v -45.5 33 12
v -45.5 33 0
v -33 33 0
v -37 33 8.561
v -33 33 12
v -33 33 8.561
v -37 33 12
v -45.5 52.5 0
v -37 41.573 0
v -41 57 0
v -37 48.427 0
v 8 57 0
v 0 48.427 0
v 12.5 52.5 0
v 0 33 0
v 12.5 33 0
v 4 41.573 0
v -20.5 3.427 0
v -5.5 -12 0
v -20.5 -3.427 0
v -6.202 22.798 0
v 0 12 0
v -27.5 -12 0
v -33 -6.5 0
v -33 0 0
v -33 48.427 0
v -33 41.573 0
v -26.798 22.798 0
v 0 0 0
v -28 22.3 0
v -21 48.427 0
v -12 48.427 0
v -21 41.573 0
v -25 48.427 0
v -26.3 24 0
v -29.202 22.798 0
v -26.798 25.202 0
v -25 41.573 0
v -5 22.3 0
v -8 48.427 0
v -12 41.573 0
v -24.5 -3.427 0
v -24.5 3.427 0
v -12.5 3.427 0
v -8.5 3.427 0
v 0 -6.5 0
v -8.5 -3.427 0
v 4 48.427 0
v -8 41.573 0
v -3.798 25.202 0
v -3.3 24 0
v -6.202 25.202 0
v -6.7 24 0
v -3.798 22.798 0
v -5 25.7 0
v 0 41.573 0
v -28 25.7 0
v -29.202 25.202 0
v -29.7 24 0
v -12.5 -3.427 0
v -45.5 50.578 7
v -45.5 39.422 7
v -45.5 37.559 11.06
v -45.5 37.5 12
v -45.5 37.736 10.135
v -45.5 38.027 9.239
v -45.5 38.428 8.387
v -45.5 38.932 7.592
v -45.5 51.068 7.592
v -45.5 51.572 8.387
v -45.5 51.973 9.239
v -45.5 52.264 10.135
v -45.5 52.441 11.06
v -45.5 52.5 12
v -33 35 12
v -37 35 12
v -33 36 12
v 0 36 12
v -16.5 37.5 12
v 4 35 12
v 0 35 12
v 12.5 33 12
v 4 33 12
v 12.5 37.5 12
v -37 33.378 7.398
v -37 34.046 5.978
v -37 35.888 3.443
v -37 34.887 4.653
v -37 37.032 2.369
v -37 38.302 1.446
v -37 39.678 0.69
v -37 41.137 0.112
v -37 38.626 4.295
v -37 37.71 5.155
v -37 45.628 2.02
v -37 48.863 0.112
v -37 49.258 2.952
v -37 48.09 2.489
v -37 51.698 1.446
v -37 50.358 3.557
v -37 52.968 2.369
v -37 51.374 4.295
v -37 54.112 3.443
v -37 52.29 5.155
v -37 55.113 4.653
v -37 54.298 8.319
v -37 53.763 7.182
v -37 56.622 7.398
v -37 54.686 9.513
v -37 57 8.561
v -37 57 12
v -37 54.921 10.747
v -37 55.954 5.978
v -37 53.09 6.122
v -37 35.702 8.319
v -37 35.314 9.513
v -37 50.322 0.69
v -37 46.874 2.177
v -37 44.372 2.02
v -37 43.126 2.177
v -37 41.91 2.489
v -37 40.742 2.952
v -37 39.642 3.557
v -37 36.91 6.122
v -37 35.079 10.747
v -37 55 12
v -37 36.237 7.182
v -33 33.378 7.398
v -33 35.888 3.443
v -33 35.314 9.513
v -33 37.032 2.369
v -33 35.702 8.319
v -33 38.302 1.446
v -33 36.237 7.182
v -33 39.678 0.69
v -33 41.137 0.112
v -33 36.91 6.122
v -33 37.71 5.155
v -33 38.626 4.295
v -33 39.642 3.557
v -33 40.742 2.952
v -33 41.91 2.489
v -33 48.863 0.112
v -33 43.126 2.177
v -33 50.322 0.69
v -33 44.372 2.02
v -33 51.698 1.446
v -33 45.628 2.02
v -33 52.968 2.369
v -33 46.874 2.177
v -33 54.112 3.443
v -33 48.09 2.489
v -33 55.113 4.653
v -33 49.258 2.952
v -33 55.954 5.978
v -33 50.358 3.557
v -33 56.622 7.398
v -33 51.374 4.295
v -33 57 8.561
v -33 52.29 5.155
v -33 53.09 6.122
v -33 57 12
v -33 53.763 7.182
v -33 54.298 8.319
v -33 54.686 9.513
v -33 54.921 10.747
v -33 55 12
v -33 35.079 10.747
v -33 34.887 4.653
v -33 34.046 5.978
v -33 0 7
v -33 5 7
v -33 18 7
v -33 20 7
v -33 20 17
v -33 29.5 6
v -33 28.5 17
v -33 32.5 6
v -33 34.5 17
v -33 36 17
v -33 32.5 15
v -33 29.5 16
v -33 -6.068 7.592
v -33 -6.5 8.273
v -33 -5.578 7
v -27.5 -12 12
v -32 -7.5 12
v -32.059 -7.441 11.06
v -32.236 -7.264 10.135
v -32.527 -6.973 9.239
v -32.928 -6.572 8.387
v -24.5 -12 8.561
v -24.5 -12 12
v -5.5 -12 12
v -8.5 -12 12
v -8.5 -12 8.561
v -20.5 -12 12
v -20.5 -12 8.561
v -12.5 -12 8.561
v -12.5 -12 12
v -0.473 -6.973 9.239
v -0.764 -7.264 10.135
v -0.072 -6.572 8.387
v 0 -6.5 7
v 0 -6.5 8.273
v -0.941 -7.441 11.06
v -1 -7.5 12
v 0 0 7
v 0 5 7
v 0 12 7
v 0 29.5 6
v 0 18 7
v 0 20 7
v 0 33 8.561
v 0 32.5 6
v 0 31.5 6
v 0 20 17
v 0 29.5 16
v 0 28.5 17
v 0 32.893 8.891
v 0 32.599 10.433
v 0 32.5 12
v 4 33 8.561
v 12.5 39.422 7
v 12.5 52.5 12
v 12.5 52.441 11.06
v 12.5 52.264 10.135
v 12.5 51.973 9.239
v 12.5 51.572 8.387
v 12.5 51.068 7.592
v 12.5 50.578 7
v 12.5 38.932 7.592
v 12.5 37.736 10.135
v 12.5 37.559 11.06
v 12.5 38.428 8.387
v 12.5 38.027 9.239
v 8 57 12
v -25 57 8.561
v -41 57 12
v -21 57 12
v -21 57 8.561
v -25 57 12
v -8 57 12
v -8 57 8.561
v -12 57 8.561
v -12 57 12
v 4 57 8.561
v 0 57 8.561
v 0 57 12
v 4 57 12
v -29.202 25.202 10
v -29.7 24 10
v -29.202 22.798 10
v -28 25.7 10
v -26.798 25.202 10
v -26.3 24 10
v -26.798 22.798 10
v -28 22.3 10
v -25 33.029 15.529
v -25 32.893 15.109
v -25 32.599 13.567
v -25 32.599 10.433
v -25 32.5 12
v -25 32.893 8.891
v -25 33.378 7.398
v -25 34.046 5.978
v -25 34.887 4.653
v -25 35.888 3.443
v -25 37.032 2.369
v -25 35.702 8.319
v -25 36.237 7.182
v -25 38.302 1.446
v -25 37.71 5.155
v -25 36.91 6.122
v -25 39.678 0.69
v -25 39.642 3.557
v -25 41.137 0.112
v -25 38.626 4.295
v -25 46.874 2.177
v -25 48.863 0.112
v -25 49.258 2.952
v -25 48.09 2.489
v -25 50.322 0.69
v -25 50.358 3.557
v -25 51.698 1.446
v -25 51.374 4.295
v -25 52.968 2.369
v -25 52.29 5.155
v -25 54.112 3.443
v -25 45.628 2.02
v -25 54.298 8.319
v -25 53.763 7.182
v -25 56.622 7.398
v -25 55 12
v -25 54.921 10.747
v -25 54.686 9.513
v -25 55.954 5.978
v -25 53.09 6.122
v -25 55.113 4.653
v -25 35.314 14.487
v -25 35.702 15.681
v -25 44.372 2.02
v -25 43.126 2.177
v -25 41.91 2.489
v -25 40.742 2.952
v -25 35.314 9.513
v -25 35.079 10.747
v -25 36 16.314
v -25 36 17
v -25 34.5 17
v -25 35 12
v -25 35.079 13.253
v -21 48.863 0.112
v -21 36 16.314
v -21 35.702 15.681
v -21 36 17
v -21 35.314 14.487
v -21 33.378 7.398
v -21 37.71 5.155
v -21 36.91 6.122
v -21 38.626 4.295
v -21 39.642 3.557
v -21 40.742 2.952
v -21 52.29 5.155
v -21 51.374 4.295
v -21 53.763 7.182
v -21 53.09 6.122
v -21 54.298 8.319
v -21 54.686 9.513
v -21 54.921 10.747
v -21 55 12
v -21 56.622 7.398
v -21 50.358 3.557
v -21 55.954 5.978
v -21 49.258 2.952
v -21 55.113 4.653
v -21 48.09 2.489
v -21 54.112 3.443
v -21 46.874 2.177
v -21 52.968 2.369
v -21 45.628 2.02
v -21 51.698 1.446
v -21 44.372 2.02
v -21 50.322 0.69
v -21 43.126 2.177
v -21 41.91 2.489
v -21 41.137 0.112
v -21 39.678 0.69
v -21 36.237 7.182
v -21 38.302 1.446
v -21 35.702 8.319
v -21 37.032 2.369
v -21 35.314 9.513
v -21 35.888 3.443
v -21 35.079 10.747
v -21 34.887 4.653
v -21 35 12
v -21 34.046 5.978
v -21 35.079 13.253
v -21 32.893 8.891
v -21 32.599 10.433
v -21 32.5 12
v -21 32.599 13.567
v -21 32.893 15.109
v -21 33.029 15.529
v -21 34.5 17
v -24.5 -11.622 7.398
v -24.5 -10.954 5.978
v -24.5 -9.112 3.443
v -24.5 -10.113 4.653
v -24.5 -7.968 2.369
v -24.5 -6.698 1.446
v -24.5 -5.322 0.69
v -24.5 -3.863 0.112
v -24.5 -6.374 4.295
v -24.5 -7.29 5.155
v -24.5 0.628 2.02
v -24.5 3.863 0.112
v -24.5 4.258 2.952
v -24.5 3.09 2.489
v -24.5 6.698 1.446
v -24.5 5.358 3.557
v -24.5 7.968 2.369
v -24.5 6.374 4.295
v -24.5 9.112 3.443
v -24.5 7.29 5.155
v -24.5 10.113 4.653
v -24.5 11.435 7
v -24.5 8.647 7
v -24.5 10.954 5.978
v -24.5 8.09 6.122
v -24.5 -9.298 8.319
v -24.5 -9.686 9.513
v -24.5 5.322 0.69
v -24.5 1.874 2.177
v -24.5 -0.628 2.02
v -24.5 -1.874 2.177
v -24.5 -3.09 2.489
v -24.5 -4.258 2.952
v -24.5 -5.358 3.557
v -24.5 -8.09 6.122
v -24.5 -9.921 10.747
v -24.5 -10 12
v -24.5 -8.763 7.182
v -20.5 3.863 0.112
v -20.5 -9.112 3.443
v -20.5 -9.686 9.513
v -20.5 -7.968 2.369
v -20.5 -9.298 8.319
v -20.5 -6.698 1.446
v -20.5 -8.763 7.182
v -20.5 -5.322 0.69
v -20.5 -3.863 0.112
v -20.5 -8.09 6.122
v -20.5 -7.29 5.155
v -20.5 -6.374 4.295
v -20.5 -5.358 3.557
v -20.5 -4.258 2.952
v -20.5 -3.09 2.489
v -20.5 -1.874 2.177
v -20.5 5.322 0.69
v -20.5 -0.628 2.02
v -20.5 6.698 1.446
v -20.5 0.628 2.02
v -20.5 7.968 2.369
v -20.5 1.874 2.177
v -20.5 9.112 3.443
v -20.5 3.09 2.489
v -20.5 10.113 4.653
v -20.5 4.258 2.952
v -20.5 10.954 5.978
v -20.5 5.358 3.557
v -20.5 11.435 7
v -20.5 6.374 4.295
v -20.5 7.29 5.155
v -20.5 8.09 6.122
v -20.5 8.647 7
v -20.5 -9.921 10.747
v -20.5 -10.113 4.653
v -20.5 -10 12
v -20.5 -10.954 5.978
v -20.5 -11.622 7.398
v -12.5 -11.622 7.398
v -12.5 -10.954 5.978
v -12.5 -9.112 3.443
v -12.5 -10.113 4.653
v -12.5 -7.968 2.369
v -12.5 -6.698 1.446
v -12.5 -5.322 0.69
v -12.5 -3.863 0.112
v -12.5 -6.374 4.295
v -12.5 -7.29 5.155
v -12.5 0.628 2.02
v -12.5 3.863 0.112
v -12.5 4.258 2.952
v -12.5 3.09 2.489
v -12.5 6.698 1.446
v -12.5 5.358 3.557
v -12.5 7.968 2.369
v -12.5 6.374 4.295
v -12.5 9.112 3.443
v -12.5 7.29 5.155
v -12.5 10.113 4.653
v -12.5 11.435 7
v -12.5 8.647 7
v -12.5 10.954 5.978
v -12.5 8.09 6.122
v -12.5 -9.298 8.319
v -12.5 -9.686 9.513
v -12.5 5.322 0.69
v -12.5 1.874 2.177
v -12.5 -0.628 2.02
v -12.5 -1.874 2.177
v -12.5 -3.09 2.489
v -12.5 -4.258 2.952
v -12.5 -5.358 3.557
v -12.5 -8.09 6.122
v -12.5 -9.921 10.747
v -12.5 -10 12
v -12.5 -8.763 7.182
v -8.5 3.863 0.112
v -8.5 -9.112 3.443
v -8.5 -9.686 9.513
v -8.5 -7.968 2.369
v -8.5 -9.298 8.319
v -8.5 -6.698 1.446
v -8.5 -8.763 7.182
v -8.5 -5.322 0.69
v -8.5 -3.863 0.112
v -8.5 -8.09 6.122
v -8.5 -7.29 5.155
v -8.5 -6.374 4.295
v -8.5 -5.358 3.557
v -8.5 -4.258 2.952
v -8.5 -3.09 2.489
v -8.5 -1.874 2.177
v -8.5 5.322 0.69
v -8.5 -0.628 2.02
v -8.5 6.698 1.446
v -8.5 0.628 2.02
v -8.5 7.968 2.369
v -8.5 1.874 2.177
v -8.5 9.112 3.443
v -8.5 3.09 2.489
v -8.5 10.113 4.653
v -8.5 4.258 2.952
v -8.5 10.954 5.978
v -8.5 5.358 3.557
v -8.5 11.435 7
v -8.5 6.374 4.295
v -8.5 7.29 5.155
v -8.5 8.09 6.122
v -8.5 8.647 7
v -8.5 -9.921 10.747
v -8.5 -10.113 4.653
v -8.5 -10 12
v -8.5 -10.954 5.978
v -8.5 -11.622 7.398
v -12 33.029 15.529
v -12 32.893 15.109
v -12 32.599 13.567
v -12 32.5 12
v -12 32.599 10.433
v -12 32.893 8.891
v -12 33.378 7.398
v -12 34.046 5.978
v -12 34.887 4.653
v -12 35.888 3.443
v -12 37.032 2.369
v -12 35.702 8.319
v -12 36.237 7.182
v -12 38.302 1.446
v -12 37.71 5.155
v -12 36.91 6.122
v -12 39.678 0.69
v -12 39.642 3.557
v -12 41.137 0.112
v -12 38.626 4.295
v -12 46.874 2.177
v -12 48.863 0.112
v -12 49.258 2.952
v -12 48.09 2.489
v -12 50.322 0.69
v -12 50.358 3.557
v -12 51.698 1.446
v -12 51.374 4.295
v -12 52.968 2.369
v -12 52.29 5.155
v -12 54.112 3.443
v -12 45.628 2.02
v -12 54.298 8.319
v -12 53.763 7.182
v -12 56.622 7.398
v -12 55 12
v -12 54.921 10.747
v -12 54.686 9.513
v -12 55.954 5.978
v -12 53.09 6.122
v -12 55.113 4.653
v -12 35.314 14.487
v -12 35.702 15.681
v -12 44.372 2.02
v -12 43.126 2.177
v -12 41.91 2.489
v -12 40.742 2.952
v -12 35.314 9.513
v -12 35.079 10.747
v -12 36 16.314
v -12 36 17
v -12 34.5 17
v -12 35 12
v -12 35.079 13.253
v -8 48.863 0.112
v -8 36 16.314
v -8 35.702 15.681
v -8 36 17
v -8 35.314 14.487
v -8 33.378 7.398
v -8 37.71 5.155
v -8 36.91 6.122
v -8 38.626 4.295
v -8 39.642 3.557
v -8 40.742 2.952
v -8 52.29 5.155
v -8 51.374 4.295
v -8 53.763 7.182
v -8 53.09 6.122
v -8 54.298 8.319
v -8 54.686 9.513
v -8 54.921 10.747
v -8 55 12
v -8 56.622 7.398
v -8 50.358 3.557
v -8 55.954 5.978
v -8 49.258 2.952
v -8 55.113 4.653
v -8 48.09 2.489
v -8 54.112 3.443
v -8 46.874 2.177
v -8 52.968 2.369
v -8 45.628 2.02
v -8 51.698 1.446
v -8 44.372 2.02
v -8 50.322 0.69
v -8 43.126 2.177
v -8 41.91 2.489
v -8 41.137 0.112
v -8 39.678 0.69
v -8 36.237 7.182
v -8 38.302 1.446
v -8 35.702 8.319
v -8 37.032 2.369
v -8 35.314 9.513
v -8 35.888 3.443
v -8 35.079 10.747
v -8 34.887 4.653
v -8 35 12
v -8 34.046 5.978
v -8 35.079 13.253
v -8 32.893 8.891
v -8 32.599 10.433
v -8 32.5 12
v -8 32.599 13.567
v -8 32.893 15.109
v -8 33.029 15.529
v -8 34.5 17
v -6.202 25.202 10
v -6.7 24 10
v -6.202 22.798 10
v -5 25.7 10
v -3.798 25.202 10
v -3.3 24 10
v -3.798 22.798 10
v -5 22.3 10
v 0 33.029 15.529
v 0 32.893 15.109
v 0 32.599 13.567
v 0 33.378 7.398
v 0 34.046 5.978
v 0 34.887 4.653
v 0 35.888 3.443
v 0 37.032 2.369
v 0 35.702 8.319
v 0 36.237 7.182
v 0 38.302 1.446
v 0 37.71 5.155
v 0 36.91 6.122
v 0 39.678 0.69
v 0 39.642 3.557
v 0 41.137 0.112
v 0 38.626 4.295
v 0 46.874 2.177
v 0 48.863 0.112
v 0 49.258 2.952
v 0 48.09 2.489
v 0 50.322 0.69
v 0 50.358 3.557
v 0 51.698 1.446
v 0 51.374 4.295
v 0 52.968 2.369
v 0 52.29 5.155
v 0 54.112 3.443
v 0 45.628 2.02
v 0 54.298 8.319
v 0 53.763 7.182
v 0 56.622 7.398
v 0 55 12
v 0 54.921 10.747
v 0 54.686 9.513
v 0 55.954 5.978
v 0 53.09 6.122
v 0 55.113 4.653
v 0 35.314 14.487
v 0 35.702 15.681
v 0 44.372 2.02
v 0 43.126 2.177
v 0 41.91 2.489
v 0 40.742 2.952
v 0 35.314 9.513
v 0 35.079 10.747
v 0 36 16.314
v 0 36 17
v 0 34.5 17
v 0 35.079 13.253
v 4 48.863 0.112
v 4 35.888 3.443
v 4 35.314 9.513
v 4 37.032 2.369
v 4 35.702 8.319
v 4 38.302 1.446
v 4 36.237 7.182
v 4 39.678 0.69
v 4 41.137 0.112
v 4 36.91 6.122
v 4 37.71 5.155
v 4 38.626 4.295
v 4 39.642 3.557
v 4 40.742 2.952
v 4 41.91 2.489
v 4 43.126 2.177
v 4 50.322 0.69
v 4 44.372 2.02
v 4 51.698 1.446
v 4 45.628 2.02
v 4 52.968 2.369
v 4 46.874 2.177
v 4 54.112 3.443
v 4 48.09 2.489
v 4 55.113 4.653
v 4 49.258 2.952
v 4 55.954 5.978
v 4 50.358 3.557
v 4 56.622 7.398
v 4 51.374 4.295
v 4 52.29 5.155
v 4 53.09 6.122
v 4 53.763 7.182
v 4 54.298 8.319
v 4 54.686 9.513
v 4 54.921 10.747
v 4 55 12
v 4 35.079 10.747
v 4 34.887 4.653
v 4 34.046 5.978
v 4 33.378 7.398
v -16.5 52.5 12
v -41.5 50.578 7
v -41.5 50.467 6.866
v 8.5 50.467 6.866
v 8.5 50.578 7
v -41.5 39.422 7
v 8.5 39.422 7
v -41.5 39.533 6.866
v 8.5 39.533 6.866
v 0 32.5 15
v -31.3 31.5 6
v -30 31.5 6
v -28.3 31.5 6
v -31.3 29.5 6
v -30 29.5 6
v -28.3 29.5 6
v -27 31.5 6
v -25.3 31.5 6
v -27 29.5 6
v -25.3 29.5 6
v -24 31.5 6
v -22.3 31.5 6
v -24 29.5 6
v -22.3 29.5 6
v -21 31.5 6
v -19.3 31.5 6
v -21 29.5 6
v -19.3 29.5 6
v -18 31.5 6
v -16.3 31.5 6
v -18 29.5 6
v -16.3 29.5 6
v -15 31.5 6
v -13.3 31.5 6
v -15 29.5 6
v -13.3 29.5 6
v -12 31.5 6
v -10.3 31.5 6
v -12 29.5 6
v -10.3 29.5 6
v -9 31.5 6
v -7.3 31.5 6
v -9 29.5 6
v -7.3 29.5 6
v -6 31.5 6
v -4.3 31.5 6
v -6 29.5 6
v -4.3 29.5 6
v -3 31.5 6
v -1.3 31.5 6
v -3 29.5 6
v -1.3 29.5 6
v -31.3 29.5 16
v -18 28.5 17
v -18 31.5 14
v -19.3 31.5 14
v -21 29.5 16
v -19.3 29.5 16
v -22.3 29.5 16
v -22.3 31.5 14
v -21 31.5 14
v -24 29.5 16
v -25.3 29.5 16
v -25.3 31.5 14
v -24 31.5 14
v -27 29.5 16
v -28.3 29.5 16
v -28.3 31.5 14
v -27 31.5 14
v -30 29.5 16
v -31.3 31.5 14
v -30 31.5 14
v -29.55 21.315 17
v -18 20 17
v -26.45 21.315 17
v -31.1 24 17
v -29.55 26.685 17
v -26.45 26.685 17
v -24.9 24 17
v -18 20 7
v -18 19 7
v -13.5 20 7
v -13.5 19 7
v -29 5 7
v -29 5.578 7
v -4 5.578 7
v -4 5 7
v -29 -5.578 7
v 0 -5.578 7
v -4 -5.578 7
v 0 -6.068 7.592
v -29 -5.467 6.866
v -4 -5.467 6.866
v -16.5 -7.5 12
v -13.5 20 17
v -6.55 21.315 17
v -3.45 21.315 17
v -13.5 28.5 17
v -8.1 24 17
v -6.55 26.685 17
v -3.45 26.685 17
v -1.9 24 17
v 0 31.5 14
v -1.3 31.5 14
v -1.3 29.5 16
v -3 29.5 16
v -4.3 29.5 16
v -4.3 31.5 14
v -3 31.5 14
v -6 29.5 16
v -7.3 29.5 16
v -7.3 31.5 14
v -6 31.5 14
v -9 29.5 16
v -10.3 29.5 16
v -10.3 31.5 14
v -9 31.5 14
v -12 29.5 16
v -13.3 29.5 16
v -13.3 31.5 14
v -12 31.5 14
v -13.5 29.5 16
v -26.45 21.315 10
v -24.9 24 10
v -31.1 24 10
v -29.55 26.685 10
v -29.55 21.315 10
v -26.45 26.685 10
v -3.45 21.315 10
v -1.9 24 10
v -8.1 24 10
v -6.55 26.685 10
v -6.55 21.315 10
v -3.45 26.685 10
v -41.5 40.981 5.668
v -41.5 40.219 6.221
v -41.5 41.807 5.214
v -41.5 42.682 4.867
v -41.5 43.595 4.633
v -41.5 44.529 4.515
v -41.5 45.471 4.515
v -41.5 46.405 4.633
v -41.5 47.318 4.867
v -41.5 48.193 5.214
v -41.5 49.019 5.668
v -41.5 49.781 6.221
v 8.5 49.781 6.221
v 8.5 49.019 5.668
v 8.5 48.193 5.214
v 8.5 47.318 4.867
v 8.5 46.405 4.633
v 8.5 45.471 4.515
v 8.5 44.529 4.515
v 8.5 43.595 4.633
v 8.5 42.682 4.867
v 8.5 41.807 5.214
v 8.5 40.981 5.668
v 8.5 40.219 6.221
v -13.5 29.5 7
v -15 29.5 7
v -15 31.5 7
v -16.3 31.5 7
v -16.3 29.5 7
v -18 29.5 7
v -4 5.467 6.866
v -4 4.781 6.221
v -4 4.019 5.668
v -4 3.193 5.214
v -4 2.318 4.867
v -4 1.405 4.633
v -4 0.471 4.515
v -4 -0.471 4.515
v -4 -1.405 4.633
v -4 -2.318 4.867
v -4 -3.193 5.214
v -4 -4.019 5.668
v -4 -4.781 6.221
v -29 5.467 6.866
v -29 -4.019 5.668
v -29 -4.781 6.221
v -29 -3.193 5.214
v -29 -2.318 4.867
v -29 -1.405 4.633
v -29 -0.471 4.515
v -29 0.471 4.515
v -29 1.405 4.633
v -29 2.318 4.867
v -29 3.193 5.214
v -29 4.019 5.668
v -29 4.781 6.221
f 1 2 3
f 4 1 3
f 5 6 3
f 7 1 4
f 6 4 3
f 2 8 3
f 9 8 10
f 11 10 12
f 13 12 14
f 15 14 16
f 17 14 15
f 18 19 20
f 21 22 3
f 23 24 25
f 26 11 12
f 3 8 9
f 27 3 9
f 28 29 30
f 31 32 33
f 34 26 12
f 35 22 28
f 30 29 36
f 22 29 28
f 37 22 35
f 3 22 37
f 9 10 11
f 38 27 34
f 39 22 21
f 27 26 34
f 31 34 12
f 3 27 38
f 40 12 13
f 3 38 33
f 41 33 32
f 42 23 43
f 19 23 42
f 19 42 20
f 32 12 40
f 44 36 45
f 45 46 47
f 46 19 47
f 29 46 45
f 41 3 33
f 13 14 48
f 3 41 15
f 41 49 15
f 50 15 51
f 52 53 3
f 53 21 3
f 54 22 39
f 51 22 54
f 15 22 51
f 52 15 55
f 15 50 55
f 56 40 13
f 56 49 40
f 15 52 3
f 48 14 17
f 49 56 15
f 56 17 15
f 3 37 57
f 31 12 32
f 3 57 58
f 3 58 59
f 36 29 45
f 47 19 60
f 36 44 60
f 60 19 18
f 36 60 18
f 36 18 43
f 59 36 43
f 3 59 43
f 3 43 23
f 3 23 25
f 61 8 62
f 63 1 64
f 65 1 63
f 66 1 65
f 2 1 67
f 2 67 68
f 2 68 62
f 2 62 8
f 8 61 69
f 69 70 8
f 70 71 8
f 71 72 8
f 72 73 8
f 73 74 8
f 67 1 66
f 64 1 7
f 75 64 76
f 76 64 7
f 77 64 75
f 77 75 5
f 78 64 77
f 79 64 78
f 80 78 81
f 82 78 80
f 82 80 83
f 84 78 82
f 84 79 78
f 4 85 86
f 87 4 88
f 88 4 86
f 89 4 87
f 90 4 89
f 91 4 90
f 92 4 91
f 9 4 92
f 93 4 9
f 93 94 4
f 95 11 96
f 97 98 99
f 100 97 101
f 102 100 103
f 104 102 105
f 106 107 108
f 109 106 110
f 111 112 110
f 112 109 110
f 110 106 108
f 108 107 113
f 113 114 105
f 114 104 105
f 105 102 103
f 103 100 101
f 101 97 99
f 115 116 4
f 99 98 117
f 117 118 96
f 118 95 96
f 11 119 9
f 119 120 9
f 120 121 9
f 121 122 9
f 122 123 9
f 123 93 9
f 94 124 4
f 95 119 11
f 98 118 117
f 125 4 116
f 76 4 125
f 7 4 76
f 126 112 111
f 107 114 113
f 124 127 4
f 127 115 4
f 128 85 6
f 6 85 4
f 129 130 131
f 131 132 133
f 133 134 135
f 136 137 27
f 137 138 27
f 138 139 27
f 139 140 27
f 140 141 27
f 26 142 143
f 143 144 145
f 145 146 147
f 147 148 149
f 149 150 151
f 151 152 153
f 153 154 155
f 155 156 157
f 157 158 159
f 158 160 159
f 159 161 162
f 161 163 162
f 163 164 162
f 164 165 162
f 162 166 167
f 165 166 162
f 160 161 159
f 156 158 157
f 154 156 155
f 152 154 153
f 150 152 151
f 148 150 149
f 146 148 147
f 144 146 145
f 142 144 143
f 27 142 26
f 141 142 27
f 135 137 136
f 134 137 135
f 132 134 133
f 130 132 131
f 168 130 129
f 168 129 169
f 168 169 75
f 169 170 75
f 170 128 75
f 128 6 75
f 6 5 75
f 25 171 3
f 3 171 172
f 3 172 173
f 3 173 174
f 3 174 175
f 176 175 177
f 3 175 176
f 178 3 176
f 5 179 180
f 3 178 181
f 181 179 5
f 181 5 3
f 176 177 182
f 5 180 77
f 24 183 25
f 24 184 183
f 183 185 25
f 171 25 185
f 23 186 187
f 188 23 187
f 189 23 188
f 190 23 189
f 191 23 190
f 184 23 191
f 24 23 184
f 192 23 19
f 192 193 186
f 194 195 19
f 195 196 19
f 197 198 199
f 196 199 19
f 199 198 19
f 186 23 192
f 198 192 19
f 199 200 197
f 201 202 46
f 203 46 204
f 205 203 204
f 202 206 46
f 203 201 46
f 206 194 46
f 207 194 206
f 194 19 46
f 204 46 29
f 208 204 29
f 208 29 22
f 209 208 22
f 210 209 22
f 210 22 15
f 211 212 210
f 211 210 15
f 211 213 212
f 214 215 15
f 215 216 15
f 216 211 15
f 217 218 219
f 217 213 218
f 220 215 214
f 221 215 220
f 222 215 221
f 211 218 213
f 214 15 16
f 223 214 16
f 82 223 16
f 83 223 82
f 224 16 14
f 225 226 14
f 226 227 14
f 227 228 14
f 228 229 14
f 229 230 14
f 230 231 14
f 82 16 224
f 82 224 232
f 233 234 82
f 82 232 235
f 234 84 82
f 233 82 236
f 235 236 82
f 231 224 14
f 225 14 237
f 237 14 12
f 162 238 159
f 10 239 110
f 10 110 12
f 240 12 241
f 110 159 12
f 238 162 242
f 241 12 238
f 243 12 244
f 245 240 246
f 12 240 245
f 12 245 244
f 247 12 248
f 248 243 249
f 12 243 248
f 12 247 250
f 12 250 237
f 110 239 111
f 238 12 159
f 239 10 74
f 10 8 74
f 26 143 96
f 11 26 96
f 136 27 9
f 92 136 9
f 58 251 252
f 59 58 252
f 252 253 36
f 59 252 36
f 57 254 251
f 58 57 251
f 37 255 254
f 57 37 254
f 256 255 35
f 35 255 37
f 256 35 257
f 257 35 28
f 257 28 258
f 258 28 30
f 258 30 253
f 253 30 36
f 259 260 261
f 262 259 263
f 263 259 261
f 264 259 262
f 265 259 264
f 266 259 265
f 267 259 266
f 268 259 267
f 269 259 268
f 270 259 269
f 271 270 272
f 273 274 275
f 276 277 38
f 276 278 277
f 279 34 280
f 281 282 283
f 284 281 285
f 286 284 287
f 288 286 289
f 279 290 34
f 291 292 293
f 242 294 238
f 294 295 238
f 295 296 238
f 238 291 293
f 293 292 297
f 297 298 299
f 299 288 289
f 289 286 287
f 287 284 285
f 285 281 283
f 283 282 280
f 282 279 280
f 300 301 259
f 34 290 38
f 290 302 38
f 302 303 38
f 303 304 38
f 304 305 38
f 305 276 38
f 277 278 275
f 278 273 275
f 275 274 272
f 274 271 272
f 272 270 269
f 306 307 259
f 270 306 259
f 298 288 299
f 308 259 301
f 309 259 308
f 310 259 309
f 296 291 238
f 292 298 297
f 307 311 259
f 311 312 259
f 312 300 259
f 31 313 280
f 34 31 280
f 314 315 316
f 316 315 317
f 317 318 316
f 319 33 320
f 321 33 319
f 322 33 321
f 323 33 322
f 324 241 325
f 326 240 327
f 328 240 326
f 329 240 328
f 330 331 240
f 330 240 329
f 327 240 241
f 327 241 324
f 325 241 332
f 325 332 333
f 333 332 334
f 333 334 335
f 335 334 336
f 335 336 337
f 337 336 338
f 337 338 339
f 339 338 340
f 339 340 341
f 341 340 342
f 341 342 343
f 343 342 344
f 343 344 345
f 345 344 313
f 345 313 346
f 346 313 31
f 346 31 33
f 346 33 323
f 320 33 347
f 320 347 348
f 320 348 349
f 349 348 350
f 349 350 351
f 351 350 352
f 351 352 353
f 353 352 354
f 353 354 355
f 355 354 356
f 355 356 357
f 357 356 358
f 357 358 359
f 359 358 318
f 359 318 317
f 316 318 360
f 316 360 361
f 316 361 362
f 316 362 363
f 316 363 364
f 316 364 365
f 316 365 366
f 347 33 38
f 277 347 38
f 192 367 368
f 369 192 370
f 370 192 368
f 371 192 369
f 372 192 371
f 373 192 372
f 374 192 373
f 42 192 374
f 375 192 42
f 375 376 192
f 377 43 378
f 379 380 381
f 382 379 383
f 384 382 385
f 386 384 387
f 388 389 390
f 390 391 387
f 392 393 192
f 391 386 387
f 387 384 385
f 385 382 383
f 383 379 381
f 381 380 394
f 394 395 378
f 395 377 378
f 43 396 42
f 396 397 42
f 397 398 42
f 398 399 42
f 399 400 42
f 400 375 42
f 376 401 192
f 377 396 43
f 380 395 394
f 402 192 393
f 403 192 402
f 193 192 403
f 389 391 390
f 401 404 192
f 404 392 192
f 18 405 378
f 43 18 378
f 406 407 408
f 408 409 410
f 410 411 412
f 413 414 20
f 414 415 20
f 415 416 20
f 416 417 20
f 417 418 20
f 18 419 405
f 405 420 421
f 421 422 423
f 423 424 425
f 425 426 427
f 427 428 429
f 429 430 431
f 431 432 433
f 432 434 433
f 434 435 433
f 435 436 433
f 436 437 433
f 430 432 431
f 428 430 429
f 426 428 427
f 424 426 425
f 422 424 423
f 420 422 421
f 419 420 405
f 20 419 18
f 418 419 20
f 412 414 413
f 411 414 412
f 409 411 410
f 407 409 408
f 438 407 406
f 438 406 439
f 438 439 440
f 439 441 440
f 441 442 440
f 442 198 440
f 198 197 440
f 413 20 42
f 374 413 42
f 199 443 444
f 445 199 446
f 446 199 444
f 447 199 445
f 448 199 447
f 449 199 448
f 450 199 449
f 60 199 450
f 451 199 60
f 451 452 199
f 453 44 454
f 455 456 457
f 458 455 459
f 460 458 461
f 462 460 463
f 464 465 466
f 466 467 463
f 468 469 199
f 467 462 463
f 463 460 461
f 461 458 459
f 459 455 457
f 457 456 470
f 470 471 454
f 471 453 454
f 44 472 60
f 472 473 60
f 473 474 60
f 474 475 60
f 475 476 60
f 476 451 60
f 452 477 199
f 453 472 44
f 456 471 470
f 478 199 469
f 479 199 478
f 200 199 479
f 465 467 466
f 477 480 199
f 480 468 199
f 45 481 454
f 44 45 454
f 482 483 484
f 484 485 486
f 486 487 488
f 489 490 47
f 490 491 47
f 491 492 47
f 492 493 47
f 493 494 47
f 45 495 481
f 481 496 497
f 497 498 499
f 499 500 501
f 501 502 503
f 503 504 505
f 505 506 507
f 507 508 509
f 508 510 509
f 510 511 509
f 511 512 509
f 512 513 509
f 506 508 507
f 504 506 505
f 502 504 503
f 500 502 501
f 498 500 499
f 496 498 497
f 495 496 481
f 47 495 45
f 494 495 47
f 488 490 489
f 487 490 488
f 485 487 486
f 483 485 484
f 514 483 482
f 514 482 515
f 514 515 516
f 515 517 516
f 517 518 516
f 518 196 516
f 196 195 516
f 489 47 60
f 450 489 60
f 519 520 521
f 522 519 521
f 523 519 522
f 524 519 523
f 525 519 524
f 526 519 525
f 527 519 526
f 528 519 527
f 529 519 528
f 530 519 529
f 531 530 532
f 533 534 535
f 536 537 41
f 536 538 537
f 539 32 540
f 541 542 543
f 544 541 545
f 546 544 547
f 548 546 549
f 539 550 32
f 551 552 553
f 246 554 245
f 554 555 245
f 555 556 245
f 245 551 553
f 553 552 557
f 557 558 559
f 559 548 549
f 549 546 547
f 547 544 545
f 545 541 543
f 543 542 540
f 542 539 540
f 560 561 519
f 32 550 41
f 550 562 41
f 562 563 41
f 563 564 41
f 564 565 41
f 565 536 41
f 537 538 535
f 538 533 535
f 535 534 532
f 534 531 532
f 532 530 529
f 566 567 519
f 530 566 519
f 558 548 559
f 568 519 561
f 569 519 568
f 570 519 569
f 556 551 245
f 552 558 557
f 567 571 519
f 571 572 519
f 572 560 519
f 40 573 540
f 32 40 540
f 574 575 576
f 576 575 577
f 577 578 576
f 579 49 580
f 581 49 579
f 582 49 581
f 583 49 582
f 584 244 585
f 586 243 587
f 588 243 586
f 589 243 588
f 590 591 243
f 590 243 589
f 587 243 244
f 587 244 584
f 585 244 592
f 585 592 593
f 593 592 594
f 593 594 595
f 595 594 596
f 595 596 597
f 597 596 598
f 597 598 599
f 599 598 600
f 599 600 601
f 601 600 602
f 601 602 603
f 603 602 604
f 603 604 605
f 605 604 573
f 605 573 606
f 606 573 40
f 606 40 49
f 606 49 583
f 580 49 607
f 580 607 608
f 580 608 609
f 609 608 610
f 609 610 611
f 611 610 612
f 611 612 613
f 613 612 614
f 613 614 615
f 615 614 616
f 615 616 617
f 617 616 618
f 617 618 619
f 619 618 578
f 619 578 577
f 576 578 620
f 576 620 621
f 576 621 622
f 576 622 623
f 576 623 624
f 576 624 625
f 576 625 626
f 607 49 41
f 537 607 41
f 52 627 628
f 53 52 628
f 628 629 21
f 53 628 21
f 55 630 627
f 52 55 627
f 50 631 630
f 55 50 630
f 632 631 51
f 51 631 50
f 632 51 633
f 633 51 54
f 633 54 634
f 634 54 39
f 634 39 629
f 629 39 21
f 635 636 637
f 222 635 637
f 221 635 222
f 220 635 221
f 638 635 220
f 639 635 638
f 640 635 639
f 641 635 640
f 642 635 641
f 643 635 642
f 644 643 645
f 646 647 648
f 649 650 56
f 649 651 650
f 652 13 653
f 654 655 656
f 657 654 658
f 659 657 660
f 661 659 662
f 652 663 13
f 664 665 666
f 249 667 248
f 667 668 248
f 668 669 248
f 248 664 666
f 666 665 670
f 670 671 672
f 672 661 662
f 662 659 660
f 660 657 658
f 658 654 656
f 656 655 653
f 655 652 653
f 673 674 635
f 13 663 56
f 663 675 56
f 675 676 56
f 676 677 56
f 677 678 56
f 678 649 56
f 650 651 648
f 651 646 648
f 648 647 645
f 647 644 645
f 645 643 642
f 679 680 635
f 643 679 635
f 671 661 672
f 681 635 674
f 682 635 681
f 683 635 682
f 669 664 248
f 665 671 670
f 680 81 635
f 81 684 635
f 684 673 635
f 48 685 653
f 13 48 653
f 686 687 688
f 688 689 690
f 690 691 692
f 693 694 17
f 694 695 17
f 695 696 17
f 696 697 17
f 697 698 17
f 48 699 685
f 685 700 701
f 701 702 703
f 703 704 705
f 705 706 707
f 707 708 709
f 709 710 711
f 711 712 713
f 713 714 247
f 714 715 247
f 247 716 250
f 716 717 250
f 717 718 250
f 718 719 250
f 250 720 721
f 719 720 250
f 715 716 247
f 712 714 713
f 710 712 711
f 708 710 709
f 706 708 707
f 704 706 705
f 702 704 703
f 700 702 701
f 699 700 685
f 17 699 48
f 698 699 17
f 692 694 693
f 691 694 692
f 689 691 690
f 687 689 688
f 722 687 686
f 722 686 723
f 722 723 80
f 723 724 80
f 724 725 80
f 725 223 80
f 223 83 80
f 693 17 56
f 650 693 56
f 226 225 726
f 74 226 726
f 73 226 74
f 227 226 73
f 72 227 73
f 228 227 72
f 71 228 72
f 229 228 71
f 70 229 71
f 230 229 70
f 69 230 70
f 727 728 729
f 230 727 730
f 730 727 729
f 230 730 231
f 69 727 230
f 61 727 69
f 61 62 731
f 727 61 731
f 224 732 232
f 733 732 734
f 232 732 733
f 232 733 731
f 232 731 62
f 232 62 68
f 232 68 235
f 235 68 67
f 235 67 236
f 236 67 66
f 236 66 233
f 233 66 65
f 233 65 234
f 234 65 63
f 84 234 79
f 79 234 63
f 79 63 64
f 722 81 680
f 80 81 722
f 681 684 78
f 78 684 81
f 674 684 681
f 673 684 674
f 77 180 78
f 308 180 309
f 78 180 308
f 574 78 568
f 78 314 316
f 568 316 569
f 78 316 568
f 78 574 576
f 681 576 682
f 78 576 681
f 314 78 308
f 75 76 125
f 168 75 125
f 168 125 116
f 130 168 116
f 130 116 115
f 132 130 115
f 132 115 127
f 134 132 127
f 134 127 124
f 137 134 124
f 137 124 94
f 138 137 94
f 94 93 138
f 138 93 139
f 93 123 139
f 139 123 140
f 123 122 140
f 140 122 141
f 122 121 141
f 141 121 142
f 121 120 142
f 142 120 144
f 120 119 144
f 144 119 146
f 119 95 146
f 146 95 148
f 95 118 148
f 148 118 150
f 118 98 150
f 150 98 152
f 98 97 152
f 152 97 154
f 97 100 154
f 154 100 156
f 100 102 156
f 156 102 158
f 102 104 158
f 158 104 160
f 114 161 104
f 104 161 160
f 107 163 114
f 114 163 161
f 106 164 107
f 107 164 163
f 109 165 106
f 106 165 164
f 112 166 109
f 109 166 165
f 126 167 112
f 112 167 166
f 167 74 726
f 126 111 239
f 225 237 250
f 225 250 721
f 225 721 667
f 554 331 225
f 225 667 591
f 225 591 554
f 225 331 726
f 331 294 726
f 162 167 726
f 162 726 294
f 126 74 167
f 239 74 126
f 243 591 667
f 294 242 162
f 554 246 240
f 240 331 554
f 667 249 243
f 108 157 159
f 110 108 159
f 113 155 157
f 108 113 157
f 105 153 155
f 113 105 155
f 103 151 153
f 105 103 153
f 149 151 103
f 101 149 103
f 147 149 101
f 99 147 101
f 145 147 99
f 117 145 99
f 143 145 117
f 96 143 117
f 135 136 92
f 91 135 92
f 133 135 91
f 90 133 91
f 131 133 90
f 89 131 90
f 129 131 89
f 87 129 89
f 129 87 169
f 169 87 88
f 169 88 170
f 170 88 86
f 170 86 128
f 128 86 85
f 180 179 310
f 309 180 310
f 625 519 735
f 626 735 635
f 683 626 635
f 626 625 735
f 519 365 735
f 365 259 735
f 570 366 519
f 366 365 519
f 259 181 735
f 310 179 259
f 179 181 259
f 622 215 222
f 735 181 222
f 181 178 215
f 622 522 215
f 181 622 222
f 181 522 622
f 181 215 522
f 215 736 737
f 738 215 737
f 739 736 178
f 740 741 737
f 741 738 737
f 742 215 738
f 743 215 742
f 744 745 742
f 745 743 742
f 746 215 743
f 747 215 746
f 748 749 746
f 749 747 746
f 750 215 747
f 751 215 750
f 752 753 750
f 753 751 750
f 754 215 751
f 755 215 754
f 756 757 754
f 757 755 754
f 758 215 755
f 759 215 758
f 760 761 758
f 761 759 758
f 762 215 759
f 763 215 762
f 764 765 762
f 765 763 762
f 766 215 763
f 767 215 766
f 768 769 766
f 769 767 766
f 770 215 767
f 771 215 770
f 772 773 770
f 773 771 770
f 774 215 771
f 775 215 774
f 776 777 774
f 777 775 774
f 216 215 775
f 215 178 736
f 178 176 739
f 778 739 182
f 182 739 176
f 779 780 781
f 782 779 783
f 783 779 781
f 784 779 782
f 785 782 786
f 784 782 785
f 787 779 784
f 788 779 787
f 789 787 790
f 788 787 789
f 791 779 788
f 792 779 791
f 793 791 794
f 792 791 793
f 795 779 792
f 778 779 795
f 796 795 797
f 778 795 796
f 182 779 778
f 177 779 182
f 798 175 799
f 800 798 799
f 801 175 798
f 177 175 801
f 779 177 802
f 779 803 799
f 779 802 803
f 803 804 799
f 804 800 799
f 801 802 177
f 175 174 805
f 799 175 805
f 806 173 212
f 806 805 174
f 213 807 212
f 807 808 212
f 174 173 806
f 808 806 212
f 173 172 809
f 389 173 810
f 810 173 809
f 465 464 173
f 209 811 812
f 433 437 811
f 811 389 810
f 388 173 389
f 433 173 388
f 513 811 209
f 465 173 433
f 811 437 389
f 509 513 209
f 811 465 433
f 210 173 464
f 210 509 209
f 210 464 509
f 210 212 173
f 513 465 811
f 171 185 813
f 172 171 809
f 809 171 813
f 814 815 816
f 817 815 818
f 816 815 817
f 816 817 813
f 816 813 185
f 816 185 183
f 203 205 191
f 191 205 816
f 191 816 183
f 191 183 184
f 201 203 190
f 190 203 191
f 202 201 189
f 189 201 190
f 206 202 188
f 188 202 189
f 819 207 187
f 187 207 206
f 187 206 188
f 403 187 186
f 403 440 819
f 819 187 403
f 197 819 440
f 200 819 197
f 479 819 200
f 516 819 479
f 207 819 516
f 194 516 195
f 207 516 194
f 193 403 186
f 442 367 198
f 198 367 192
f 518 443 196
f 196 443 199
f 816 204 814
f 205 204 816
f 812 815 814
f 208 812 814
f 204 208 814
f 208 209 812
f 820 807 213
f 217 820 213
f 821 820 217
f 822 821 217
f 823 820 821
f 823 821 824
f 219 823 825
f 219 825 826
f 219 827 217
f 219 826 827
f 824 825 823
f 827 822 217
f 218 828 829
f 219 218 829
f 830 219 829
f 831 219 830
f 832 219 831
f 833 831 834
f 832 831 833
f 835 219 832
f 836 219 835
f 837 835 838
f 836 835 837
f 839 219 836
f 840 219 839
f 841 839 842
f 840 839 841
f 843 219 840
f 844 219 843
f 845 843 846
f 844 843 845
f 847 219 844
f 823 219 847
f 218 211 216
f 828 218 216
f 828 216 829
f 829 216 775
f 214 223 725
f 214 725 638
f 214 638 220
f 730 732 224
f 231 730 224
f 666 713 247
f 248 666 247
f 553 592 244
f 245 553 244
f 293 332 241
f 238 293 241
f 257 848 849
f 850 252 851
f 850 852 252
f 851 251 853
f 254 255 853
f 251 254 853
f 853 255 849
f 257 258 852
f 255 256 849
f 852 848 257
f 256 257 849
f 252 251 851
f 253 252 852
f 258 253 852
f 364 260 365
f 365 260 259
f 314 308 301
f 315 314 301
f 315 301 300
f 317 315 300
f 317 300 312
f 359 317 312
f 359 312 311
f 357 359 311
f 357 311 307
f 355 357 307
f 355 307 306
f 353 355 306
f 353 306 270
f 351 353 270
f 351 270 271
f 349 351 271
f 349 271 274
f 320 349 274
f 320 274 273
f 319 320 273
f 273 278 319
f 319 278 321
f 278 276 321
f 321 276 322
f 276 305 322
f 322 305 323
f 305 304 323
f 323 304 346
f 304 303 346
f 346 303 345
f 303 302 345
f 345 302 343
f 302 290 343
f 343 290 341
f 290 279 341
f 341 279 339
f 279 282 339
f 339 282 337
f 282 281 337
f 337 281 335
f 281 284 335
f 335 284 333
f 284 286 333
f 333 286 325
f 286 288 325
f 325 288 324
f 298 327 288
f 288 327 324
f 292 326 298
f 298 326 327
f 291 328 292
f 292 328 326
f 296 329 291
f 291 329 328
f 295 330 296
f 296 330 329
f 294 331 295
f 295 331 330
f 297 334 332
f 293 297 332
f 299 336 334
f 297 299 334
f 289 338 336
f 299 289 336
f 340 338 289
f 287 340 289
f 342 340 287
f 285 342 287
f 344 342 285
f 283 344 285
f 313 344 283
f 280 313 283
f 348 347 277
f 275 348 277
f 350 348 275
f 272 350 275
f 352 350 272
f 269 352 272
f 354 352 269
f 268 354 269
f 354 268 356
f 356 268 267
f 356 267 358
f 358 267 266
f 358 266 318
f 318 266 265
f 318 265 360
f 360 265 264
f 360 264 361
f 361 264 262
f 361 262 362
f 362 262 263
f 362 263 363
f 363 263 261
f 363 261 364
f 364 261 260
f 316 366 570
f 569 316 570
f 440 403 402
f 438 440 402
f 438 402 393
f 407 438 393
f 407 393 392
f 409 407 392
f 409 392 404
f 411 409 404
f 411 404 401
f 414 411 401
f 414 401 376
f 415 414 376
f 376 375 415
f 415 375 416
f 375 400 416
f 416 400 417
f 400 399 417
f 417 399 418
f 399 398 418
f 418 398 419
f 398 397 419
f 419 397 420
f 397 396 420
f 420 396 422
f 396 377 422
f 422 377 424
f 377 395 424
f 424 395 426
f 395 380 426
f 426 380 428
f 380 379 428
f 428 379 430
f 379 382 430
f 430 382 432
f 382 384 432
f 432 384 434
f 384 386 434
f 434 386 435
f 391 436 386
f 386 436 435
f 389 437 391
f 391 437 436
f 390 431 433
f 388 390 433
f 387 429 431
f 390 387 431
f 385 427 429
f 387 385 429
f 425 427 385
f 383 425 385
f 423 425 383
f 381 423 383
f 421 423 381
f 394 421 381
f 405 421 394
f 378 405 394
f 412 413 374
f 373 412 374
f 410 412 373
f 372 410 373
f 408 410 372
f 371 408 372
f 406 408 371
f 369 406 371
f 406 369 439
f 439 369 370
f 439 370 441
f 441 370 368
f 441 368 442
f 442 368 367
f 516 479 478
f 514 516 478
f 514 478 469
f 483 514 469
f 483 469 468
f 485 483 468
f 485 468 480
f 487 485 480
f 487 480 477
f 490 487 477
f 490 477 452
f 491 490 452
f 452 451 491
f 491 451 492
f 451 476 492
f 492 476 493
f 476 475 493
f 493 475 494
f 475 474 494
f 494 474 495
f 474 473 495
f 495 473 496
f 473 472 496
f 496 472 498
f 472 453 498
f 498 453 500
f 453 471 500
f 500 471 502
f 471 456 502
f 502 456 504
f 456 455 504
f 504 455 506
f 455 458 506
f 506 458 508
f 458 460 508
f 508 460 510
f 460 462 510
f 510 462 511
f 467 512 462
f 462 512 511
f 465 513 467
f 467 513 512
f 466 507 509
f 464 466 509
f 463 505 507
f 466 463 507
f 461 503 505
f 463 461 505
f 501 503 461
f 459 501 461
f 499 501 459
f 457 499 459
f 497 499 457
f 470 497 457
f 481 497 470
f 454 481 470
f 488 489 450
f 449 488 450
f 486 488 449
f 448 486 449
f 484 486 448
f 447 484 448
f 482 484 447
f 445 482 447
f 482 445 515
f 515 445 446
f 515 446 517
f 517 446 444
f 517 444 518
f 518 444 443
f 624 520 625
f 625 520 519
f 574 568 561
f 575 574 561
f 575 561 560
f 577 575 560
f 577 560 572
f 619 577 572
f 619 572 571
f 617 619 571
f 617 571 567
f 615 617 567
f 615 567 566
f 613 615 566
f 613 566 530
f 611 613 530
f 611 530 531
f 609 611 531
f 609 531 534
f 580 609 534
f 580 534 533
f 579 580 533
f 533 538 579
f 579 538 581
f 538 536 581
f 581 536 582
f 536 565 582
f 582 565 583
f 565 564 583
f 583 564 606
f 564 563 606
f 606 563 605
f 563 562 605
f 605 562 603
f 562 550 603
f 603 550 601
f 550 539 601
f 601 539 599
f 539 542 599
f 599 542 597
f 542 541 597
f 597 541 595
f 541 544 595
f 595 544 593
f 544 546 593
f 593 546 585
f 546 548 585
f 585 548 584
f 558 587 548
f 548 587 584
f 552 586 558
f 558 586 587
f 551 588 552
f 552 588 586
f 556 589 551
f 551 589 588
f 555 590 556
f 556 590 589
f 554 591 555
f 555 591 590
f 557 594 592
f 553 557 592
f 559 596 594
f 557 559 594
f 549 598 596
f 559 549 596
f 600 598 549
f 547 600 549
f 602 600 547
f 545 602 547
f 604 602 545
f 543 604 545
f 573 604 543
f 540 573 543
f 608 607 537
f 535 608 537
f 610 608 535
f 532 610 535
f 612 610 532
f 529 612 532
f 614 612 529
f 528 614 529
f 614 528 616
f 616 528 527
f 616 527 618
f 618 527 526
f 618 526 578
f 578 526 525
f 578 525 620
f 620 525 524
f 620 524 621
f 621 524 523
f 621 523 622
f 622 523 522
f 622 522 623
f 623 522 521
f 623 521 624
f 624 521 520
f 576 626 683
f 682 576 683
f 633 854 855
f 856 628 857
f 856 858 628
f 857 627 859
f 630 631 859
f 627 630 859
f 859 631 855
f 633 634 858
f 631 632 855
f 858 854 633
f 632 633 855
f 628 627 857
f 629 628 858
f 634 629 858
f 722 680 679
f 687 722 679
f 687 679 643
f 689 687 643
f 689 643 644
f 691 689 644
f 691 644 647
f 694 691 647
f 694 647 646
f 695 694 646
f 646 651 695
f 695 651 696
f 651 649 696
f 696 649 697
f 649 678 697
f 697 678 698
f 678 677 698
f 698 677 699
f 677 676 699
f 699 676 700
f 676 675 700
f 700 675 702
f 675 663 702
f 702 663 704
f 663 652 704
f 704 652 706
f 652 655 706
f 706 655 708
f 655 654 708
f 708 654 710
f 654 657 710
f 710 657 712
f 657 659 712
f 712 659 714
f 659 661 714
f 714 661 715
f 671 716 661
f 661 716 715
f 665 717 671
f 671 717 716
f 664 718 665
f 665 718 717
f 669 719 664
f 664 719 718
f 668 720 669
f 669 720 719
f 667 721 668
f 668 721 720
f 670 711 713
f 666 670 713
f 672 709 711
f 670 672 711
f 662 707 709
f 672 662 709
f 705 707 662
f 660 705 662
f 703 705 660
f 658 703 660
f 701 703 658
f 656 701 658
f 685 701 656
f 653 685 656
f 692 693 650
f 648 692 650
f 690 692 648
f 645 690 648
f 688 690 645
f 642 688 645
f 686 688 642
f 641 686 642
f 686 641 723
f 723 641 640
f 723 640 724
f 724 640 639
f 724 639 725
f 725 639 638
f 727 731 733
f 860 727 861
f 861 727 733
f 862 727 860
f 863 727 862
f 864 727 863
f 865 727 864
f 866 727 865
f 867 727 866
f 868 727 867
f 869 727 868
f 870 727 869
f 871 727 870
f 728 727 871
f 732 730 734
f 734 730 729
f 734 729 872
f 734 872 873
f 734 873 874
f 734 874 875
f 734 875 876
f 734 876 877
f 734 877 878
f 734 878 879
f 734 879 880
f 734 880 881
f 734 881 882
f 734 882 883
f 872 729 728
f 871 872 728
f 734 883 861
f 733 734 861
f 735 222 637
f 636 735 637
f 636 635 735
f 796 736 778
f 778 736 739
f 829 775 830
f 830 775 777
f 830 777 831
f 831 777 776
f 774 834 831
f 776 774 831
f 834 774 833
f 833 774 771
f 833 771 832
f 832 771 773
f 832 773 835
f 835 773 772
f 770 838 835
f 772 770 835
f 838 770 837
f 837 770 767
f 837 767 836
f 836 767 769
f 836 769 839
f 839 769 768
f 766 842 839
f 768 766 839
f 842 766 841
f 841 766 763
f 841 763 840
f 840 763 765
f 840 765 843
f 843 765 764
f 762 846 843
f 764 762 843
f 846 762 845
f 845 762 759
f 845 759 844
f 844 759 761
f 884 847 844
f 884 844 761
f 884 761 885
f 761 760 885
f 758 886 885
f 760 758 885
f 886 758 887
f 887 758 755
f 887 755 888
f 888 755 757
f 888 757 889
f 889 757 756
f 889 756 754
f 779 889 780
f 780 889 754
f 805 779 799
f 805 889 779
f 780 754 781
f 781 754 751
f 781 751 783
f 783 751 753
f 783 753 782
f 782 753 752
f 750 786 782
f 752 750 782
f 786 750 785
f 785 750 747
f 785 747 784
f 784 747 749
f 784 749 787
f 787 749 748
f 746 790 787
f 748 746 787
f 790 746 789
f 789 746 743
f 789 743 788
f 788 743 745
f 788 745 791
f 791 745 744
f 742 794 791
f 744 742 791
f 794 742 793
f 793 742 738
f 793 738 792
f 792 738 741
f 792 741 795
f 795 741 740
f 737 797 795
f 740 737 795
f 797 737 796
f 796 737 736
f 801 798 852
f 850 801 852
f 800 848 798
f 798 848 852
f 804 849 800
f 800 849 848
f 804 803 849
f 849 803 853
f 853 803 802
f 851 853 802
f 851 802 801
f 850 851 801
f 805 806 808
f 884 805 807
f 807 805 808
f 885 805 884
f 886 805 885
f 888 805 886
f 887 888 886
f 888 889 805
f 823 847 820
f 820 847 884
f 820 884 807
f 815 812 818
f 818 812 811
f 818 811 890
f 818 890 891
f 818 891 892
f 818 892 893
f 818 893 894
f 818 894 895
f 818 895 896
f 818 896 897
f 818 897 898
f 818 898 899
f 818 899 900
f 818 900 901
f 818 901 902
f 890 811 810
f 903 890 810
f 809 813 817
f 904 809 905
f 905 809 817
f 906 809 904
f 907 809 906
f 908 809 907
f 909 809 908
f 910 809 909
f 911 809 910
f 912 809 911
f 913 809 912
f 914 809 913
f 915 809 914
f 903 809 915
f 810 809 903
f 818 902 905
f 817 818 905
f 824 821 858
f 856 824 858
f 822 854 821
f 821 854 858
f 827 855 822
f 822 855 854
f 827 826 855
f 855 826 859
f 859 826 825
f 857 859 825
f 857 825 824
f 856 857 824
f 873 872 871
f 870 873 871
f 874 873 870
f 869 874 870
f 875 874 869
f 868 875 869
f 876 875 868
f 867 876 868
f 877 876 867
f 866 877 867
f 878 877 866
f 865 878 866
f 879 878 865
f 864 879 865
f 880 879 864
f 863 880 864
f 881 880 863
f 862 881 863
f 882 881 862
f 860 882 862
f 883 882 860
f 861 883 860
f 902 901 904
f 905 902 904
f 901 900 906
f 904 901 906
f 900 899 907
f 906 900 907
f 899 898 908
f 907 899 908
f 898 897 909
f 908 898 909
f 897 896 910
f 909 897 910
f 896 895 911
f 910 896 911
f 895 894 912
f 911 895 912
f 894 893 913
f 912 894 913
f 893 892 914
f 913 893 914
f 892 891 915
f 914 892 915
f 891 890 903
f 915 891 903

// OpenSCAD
// file: bearing.scad
// PRUSA iteration3
// Bearing holders
// GNU GPL v3
// Josef Průša <iam@josefprusa.cz> and contributors
// http://www.reprap.org/wiki/Prusa_Mendel
// http://prusamendel.org

bearing_diameter = 15;

module horizontal_bearing_base(bearings=1){
 translate(v=[0,0,6]) cube(size = [24,8+bearings*25,12], center = true);	
}
module horizontal_bearing_holes(bearings=1){
 cutter_lenght = 10+bearings*25;
 one_holder_lenght = 8+25;
 holder_lenght = 8+bearings*25;
 
 // Main bearing cut
 difference(){
  translate(v=[0,0,12]) rotate(a=[90,0,0]) translate(v=[0,0,-cutter_lenght/2]) cylinder(h = cutter_lenght, r=bearing_diameter/2, $fn=50);
  // Bearing retainers
  translate(v=[0,1-holder_lenght/2,3]) cube(size = [24,6,8], center = true);
  translate(v=[0,-1+holder_lenght/2,3]) cube(size = [24,6,8], center = true);
 }
 
 // Ziptie cutouts
 ziptie_cut_ofset = 0;
 for ( i = [0 : bearings-1] ){
  // For easier positioning I move them by half of one 
  // bearing holder then add each bearign lenght and then center again
  translate(v=[0,-holder_lenght/2,0]) translate(v=[0,one_holder_lenght/2+i*25,0]) difference(){
   union(){
    translate(v=[0,2-6,12]) rotate(a=[90,0,0]) translate(v=[0,0,0]) cylinder(h = 4, r=12.5, $fn=50);
    translate(v=[0,2+6,12]) rotate(a=[90,0,0]) translate(v=[0,0,0]) cylinder(h = 4, r=12.5, $fn=50);
   }
   translate(v=[0,10,12]) rotate(a=[90,0,0]) translate(v=[0,0,0]) cylinder(h = 24, r=10, $fn=50);
  }
 }
 
}

module horizontal_bearing_test(){
 difference(){
  horizontal_bearing_base(1);
  horizontal_bearing_holes(1);
 }
 translate(v=[30,0,0]) difference(){
  horizontal_bearing_base(2);
  horizontal_bearing_holes(2);
 }
 translate(v=[60,0,0]) difference(){
  horizontal_bearing_base(3);
  horizontal_bearing_holes(3);
 }
}



thinwall = 3;
bearing_size = bearing_diameter + 2 * thinwall;

module vertical_bearing_base(){
 translate(v=[-2-bearing_size/4,0,29]) cube(size = [4+bearing_size/2,bearing_size,58], center = true);
 cylinder(h = 58, r=bearing_size/2, $fn = 90);
}

module vertical_bearing_holes(){
  translate(v=[0,0,-1]) cylinder(h = 62, r=bearing_diameter/2, $fn = 60);
  rotate(a=[0,0,-70]) translate(v=[8,0,31.5]) cube(size = [5,1,62], center = true);
}

difference(){
vertical_bearing_base();
vertical_bearing_holes();
}
// main file
// PRUSA iteration3
// X carriage
// GNU GPL v3
// Josef Průša <iam@josefprusa.cz> and contributors
// http://www.reprap.org/wiki/Prusa_Mendel
// http://prusamendel.org

use <bearing.scad>

module x_carriage_base(){
 // Small bearing holder
 translate([-33/2,0,0]) rotate([0,0,90]) horizontal_bearing_base(1);
 // Long bearing holder
 translate([-33/2,45,0]) rotate([0,0,90]) horizontal_bearing_base(2);
 // Base plate
 translate([-33,-11.5,0]) cube([33,68,7]);
 // Belt holder base
 translate([-33,20,0]) cube([33,16,17]);
}

module x_carriage_beltcut(){
 // Cut in the middle for belt
 translate([-2.5-16.5+1,19,7]) cube([4.5,13,15]);
 // Cut clearing space for the belt
 translate([-38,5,7]) cube([40,13,15]);
 // Belt slit
 translate([-66,21.5+10,6]) cube([67,1,15]);
 // Smooth entrance
 translate([-66,21.5+10,14]) rotate([45,0,0]) cube([67,15,15]);
 // Teeth cuts
 for ( i = [0 : 23] ){
  translate([0-i*3,21.5+8,6]) cube([1.7,3,15]);
 }
}

module x_carriage_holes(){
 // Small bearing holder holes cutter
 translate([-33/2,0,0]) rotate([0,0,90]) horizontal_bearing_holes(1);
 // Long bearing holder holes cutter
 translate([-33/2,45,0]) rotate([0,0,90]) horizontal_bearing_holes(2);
  // Extruder mounting holes
  translate([-16.5+11.5,24,-1])cylinder(r=1.7, h=20, $fn=8);
  translate([-16.5+11.5,24,10])cylinder(r=3.1, h=20, $fn=6); 
  translate([-16.5-11.5,24,-1])cylinder(r=1.7, h=20, $fn=8);
  translate([-16.5-11.5,24,10])cylinder(r=3.1, h=20, $fn=6); 	
}

module x_carriage_fancy(){
 // Top right corner
 translate([13.5,-5,0]) translate([0,45+11.5,-1]) rotate([0,0,45]) translate([0,-15,0]) cube([30,30,20]);
 // Bottom right corner
 translate([0,5,0]) translate([0,-11.5,-1]) rotate([0,0,-45]) translate([0,-15,0]) cube([30,30,20]);
 // Bottom ĺeft corner
 translate([-33,5,0]) translate([0,-11.5,-1]) rotate([0,0,-135]) translate([0,-15,0]) cube([30,30,20]);
 // Top left corner
 translate([-33-13.5,-5,0]) translate([0,45+11.5,-1]) rotate([0,0,135]) translate([0,-15,0]) cube([30,30,20]);	
}

// Final part
module x_carriage(){
 difference(){
  x_carriage_base();
  x_carriage_beltcut();
  x_carriage_holes();
  x_carriage_fancy();
 }
}

x_carriage();
